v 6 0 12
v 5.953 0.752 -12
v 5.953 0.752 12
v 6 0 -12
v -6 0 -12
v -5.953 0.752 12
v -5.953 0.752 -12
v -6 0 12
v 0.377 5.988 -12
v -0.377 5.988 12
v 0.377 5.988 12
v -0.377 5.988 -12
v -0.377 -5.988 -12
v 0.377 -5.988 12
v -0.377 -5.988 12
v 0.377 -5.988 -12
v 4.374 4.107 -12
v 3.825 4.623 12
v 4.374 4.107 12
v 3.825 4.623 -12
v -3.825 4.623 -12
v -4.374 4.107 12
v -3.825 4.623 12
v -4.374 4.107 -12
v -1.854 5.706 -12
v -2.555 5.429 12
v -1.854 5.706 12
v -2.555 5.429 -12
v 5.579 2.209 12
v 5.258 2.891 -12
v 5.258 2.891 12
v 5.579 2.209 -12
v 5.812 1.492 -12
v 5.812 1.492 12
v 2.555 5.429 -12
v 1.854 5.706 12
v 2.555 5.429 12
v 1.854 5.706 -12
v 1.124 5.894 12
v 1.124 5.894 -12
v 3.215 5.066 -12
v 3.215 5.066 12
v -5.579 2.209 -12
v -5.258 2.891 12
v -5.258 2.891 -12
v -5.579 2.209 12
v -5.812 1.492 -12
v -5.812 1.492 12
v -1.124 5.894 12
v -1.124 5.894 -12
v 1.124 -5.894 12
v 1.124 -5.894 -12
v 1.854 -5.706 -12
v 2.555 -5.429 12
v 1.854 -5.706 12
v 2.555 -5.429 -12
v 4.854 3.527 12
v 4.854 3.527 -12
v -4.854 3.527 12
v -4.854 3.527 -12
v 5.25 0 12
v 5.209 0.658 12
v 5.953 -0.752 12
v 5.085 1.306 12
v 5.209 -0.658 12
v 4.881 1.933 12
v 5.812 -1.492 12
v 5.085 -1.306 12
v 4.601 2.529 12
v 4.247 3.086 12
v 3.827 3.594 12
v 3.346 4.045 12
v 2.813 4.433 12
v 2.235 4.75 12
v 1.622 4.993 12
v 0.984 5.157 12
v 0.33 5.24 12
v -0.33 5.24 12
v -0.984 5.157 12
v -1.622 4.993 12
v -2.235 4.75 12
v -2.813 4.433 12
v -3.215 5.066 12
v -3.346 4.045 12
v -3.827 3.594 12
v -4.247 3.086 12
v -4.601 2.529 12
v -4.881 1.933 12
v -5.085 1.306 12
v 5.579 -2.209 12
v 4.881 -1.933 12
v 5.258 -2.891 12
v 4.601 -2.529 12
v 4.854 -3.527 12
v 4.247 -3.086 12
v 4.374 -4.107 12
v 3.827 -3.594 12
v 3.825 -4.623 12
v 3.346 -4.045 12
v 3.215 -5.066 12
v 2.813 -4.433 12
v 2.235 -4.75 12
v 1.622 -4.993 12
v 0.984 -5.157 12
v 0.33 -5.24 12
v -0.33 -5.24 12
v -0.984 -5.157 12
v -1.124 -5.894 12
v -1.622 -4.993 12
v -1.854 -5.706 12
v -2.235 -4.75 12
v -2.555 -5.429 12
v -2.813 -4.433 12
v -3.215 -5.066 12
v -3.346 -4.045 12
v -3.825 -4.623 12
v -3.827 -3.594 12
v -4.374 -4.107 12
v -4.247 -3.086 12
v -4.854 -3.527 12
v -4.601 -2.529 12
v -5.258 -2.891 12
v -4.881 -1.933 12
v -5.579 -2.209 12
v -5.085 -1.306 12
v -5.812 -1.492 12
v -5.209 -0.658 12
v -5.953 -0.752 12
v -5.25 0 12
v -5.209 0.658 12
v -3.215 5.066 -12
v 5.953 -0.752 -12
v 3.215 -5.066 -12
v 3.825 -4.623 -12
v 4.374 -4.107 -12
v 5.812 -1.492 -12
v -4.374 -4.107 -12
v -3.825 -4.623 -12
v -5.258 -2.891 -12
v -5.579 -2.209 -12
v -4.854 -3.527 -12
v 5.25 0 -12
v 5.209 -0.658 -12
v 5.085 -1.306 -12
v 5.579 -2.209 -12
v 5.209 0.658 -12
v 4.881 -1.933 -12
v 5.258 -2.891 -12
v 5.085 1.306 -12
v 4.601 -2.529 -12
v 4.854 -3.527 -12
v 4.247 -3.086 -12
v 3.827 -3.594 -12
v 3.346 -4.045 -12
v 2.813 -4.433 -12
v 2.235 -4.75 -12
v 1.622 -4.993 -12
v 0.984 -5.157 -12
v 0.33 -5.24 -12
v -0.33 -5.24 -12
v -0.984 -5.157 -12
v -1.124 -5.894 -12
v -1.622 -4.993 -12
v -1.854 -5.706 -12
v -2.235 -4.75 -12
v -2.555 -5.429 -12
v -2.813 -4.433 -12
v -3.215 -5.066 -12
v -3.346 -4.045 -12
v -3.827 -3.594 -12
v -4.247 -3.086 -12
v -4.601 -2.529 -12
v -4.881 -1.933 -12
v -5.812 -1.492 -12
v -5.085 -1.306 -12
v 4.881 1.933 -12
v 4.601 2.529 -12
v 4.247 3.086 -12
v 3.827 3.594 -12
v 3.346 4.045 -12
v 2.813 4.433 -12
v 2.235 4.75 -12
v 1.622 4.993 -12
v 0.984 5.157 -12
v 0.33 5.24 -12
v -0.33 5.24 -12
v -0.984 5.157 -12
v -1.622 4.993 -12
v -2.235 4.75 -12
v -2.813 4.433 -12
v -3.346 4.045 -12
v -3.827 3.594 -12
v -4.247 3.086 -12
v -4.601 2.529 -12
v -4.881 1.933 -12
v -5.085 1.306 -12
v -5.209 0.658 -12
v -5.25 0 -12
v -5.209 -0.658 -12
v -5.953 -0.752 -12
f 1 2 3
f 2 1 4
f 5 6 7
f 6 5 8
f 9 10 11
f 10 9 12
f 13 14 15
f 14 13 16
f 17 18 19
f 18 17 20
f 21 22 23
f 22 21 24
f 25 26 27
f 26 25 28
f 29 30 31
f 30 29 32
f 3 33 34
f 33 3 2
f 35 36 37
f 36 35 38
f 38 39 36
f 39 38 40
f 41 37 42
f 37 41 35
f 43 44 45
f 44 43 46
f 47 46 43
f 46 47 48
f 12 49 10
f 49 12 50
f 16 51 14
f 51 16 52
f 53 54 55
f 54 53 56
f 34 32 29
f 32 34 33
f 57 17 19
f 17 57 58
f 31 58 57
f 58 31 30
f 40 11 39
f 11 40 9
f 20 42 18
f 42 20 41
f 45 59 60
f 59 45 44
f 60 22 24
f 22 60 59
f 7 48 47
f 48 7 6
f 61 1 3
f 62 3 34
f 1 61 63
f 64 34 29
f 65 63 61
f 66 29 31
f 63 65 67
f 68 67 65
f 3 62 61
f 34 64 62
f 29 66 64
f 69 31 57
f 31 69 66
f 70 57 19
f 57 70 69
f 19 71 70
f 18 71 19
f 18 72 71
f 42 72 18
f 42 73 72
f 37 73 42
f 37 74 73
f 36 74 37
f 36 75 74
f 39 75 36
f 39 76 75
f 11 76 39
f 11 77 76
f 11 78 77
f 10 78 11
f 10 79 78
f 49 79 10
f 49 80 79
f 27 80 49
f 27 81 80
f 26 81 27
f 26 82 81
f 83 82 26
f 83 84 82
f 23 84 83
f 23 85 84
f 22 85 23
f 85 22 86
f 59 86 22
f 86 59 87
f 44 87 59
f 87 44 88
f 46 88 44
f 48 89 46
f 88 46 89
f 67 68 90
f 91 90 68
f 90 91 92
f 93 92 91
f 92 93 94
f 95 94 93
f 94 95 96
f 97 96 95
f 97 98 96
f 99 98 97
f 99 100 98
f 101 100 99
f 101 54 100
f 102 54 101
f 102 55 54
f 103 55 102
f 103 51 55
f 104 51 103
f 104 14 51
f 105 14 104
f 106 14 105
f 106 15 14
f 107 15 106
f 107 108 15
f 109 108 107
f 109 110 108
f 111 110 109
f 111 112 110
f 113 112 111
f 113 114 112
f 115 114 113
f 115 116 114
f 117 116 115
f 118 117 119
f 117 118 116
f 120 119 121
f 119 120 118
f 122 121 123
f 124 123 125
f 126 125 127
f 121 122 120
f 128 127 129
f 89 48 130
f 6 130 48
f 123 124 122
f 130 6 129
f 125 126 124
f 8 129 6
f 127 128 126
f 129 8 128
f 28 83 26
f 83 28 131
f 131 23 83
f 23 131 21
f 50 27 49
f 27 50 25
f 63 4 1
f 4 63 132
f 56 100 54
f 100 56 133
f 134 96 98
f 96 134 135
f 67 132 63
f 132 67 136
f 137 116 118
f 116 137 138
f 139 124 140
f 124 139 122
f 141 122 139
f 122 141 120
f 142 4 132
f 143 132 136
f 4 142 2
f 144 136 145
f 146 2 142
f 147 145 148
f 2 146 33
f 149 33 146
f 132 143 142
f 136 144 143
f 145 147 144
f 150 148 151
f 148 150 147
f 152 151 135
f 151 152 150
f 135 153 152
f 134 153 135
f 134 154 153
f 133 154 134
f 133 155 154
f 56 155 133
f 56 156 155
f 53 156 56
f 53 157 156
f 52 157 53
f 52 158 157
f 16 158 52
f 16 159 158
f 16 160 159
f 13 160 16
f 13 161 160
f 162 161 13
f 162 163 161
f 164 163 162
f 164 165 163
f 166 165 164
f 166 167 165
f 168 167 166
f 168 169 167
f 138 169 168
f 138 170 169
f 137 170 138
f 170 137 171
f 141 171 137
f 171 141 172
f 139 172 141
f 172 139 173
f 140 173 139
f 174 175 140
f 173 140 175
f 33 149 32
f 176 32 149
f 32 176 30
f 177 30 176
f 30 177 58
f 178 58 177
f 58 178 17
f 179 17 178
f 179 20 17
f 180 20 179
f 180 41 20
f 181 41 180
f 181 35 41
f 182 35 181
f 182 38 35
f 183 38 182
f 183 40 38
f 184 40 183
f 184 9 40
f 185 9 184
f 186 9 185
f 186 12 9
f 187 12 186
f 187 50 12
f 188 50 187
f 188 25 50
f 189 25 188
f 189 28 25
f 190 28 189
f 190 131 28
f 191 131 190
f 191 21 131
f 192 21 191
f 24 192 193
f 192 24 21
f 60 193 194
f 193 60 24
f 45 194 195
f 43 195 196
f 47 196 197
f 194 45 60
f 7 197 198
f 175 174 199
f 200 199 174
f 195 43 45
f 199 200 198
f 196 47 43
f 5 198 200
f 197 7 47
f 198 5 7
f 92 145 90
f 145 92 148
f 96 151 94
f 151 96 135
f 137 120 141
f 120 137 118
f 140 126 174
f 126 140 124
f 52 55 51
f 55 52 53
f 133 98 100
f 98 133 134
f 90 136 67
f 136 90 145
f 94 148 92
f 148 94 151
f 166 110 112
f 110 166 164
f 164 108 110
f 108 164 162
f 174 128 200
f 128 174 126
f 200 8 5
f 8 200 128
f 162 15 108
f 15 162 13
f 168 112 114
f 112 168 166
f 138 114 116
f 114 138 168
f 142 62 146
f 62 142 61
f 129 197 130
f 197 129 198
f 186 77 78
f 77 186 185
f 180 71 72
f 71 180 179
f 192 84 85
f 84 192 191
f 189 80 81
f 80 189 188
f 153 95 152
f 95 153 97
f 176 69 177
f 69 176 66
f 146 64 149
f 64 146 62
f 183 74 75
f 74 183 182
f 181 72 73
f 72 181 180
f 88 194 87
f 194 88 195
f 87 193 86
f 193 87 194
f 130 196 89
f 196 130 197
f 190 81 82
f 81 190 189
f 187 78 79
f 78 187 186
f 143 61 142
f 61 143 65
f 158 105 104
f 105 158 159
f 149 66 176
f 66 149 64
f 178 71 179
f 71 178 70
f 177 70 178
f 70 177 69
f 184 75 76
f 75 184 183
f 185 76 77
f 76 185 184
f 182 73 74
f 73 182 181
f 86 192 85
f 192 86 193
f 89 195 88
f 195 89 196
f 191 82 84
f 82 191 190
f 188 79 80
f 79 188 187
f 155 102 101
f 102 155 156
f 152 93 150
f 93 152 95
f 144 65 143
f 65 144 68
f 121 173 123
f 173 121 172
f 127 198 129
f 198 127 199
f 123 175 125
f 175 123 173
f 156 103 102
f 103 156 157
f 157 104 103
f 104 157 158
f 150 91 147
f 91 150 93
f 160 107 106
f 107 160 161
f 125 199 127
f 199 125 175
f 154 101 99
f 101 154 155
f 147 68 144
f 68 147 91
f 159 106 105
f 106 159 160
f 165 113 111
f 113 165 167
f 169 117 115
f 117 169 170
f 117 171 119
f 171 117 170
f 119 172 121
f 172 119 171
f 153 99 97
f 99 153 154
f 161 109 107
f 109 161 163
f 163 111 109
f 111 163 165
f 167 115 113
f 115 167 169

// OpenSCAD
$fn = 50;


difference() {
	union() {
		translate(v = [0, 0, -12.0000000000]) {
			cylinder(h = 24, r = 6.0000000000);
		}
	}
	union() {
		translate(v = [0, 0, -100.0000000000]) {
			cylinder(h = 200, r = 5.2500000000);
		}
	}
}
